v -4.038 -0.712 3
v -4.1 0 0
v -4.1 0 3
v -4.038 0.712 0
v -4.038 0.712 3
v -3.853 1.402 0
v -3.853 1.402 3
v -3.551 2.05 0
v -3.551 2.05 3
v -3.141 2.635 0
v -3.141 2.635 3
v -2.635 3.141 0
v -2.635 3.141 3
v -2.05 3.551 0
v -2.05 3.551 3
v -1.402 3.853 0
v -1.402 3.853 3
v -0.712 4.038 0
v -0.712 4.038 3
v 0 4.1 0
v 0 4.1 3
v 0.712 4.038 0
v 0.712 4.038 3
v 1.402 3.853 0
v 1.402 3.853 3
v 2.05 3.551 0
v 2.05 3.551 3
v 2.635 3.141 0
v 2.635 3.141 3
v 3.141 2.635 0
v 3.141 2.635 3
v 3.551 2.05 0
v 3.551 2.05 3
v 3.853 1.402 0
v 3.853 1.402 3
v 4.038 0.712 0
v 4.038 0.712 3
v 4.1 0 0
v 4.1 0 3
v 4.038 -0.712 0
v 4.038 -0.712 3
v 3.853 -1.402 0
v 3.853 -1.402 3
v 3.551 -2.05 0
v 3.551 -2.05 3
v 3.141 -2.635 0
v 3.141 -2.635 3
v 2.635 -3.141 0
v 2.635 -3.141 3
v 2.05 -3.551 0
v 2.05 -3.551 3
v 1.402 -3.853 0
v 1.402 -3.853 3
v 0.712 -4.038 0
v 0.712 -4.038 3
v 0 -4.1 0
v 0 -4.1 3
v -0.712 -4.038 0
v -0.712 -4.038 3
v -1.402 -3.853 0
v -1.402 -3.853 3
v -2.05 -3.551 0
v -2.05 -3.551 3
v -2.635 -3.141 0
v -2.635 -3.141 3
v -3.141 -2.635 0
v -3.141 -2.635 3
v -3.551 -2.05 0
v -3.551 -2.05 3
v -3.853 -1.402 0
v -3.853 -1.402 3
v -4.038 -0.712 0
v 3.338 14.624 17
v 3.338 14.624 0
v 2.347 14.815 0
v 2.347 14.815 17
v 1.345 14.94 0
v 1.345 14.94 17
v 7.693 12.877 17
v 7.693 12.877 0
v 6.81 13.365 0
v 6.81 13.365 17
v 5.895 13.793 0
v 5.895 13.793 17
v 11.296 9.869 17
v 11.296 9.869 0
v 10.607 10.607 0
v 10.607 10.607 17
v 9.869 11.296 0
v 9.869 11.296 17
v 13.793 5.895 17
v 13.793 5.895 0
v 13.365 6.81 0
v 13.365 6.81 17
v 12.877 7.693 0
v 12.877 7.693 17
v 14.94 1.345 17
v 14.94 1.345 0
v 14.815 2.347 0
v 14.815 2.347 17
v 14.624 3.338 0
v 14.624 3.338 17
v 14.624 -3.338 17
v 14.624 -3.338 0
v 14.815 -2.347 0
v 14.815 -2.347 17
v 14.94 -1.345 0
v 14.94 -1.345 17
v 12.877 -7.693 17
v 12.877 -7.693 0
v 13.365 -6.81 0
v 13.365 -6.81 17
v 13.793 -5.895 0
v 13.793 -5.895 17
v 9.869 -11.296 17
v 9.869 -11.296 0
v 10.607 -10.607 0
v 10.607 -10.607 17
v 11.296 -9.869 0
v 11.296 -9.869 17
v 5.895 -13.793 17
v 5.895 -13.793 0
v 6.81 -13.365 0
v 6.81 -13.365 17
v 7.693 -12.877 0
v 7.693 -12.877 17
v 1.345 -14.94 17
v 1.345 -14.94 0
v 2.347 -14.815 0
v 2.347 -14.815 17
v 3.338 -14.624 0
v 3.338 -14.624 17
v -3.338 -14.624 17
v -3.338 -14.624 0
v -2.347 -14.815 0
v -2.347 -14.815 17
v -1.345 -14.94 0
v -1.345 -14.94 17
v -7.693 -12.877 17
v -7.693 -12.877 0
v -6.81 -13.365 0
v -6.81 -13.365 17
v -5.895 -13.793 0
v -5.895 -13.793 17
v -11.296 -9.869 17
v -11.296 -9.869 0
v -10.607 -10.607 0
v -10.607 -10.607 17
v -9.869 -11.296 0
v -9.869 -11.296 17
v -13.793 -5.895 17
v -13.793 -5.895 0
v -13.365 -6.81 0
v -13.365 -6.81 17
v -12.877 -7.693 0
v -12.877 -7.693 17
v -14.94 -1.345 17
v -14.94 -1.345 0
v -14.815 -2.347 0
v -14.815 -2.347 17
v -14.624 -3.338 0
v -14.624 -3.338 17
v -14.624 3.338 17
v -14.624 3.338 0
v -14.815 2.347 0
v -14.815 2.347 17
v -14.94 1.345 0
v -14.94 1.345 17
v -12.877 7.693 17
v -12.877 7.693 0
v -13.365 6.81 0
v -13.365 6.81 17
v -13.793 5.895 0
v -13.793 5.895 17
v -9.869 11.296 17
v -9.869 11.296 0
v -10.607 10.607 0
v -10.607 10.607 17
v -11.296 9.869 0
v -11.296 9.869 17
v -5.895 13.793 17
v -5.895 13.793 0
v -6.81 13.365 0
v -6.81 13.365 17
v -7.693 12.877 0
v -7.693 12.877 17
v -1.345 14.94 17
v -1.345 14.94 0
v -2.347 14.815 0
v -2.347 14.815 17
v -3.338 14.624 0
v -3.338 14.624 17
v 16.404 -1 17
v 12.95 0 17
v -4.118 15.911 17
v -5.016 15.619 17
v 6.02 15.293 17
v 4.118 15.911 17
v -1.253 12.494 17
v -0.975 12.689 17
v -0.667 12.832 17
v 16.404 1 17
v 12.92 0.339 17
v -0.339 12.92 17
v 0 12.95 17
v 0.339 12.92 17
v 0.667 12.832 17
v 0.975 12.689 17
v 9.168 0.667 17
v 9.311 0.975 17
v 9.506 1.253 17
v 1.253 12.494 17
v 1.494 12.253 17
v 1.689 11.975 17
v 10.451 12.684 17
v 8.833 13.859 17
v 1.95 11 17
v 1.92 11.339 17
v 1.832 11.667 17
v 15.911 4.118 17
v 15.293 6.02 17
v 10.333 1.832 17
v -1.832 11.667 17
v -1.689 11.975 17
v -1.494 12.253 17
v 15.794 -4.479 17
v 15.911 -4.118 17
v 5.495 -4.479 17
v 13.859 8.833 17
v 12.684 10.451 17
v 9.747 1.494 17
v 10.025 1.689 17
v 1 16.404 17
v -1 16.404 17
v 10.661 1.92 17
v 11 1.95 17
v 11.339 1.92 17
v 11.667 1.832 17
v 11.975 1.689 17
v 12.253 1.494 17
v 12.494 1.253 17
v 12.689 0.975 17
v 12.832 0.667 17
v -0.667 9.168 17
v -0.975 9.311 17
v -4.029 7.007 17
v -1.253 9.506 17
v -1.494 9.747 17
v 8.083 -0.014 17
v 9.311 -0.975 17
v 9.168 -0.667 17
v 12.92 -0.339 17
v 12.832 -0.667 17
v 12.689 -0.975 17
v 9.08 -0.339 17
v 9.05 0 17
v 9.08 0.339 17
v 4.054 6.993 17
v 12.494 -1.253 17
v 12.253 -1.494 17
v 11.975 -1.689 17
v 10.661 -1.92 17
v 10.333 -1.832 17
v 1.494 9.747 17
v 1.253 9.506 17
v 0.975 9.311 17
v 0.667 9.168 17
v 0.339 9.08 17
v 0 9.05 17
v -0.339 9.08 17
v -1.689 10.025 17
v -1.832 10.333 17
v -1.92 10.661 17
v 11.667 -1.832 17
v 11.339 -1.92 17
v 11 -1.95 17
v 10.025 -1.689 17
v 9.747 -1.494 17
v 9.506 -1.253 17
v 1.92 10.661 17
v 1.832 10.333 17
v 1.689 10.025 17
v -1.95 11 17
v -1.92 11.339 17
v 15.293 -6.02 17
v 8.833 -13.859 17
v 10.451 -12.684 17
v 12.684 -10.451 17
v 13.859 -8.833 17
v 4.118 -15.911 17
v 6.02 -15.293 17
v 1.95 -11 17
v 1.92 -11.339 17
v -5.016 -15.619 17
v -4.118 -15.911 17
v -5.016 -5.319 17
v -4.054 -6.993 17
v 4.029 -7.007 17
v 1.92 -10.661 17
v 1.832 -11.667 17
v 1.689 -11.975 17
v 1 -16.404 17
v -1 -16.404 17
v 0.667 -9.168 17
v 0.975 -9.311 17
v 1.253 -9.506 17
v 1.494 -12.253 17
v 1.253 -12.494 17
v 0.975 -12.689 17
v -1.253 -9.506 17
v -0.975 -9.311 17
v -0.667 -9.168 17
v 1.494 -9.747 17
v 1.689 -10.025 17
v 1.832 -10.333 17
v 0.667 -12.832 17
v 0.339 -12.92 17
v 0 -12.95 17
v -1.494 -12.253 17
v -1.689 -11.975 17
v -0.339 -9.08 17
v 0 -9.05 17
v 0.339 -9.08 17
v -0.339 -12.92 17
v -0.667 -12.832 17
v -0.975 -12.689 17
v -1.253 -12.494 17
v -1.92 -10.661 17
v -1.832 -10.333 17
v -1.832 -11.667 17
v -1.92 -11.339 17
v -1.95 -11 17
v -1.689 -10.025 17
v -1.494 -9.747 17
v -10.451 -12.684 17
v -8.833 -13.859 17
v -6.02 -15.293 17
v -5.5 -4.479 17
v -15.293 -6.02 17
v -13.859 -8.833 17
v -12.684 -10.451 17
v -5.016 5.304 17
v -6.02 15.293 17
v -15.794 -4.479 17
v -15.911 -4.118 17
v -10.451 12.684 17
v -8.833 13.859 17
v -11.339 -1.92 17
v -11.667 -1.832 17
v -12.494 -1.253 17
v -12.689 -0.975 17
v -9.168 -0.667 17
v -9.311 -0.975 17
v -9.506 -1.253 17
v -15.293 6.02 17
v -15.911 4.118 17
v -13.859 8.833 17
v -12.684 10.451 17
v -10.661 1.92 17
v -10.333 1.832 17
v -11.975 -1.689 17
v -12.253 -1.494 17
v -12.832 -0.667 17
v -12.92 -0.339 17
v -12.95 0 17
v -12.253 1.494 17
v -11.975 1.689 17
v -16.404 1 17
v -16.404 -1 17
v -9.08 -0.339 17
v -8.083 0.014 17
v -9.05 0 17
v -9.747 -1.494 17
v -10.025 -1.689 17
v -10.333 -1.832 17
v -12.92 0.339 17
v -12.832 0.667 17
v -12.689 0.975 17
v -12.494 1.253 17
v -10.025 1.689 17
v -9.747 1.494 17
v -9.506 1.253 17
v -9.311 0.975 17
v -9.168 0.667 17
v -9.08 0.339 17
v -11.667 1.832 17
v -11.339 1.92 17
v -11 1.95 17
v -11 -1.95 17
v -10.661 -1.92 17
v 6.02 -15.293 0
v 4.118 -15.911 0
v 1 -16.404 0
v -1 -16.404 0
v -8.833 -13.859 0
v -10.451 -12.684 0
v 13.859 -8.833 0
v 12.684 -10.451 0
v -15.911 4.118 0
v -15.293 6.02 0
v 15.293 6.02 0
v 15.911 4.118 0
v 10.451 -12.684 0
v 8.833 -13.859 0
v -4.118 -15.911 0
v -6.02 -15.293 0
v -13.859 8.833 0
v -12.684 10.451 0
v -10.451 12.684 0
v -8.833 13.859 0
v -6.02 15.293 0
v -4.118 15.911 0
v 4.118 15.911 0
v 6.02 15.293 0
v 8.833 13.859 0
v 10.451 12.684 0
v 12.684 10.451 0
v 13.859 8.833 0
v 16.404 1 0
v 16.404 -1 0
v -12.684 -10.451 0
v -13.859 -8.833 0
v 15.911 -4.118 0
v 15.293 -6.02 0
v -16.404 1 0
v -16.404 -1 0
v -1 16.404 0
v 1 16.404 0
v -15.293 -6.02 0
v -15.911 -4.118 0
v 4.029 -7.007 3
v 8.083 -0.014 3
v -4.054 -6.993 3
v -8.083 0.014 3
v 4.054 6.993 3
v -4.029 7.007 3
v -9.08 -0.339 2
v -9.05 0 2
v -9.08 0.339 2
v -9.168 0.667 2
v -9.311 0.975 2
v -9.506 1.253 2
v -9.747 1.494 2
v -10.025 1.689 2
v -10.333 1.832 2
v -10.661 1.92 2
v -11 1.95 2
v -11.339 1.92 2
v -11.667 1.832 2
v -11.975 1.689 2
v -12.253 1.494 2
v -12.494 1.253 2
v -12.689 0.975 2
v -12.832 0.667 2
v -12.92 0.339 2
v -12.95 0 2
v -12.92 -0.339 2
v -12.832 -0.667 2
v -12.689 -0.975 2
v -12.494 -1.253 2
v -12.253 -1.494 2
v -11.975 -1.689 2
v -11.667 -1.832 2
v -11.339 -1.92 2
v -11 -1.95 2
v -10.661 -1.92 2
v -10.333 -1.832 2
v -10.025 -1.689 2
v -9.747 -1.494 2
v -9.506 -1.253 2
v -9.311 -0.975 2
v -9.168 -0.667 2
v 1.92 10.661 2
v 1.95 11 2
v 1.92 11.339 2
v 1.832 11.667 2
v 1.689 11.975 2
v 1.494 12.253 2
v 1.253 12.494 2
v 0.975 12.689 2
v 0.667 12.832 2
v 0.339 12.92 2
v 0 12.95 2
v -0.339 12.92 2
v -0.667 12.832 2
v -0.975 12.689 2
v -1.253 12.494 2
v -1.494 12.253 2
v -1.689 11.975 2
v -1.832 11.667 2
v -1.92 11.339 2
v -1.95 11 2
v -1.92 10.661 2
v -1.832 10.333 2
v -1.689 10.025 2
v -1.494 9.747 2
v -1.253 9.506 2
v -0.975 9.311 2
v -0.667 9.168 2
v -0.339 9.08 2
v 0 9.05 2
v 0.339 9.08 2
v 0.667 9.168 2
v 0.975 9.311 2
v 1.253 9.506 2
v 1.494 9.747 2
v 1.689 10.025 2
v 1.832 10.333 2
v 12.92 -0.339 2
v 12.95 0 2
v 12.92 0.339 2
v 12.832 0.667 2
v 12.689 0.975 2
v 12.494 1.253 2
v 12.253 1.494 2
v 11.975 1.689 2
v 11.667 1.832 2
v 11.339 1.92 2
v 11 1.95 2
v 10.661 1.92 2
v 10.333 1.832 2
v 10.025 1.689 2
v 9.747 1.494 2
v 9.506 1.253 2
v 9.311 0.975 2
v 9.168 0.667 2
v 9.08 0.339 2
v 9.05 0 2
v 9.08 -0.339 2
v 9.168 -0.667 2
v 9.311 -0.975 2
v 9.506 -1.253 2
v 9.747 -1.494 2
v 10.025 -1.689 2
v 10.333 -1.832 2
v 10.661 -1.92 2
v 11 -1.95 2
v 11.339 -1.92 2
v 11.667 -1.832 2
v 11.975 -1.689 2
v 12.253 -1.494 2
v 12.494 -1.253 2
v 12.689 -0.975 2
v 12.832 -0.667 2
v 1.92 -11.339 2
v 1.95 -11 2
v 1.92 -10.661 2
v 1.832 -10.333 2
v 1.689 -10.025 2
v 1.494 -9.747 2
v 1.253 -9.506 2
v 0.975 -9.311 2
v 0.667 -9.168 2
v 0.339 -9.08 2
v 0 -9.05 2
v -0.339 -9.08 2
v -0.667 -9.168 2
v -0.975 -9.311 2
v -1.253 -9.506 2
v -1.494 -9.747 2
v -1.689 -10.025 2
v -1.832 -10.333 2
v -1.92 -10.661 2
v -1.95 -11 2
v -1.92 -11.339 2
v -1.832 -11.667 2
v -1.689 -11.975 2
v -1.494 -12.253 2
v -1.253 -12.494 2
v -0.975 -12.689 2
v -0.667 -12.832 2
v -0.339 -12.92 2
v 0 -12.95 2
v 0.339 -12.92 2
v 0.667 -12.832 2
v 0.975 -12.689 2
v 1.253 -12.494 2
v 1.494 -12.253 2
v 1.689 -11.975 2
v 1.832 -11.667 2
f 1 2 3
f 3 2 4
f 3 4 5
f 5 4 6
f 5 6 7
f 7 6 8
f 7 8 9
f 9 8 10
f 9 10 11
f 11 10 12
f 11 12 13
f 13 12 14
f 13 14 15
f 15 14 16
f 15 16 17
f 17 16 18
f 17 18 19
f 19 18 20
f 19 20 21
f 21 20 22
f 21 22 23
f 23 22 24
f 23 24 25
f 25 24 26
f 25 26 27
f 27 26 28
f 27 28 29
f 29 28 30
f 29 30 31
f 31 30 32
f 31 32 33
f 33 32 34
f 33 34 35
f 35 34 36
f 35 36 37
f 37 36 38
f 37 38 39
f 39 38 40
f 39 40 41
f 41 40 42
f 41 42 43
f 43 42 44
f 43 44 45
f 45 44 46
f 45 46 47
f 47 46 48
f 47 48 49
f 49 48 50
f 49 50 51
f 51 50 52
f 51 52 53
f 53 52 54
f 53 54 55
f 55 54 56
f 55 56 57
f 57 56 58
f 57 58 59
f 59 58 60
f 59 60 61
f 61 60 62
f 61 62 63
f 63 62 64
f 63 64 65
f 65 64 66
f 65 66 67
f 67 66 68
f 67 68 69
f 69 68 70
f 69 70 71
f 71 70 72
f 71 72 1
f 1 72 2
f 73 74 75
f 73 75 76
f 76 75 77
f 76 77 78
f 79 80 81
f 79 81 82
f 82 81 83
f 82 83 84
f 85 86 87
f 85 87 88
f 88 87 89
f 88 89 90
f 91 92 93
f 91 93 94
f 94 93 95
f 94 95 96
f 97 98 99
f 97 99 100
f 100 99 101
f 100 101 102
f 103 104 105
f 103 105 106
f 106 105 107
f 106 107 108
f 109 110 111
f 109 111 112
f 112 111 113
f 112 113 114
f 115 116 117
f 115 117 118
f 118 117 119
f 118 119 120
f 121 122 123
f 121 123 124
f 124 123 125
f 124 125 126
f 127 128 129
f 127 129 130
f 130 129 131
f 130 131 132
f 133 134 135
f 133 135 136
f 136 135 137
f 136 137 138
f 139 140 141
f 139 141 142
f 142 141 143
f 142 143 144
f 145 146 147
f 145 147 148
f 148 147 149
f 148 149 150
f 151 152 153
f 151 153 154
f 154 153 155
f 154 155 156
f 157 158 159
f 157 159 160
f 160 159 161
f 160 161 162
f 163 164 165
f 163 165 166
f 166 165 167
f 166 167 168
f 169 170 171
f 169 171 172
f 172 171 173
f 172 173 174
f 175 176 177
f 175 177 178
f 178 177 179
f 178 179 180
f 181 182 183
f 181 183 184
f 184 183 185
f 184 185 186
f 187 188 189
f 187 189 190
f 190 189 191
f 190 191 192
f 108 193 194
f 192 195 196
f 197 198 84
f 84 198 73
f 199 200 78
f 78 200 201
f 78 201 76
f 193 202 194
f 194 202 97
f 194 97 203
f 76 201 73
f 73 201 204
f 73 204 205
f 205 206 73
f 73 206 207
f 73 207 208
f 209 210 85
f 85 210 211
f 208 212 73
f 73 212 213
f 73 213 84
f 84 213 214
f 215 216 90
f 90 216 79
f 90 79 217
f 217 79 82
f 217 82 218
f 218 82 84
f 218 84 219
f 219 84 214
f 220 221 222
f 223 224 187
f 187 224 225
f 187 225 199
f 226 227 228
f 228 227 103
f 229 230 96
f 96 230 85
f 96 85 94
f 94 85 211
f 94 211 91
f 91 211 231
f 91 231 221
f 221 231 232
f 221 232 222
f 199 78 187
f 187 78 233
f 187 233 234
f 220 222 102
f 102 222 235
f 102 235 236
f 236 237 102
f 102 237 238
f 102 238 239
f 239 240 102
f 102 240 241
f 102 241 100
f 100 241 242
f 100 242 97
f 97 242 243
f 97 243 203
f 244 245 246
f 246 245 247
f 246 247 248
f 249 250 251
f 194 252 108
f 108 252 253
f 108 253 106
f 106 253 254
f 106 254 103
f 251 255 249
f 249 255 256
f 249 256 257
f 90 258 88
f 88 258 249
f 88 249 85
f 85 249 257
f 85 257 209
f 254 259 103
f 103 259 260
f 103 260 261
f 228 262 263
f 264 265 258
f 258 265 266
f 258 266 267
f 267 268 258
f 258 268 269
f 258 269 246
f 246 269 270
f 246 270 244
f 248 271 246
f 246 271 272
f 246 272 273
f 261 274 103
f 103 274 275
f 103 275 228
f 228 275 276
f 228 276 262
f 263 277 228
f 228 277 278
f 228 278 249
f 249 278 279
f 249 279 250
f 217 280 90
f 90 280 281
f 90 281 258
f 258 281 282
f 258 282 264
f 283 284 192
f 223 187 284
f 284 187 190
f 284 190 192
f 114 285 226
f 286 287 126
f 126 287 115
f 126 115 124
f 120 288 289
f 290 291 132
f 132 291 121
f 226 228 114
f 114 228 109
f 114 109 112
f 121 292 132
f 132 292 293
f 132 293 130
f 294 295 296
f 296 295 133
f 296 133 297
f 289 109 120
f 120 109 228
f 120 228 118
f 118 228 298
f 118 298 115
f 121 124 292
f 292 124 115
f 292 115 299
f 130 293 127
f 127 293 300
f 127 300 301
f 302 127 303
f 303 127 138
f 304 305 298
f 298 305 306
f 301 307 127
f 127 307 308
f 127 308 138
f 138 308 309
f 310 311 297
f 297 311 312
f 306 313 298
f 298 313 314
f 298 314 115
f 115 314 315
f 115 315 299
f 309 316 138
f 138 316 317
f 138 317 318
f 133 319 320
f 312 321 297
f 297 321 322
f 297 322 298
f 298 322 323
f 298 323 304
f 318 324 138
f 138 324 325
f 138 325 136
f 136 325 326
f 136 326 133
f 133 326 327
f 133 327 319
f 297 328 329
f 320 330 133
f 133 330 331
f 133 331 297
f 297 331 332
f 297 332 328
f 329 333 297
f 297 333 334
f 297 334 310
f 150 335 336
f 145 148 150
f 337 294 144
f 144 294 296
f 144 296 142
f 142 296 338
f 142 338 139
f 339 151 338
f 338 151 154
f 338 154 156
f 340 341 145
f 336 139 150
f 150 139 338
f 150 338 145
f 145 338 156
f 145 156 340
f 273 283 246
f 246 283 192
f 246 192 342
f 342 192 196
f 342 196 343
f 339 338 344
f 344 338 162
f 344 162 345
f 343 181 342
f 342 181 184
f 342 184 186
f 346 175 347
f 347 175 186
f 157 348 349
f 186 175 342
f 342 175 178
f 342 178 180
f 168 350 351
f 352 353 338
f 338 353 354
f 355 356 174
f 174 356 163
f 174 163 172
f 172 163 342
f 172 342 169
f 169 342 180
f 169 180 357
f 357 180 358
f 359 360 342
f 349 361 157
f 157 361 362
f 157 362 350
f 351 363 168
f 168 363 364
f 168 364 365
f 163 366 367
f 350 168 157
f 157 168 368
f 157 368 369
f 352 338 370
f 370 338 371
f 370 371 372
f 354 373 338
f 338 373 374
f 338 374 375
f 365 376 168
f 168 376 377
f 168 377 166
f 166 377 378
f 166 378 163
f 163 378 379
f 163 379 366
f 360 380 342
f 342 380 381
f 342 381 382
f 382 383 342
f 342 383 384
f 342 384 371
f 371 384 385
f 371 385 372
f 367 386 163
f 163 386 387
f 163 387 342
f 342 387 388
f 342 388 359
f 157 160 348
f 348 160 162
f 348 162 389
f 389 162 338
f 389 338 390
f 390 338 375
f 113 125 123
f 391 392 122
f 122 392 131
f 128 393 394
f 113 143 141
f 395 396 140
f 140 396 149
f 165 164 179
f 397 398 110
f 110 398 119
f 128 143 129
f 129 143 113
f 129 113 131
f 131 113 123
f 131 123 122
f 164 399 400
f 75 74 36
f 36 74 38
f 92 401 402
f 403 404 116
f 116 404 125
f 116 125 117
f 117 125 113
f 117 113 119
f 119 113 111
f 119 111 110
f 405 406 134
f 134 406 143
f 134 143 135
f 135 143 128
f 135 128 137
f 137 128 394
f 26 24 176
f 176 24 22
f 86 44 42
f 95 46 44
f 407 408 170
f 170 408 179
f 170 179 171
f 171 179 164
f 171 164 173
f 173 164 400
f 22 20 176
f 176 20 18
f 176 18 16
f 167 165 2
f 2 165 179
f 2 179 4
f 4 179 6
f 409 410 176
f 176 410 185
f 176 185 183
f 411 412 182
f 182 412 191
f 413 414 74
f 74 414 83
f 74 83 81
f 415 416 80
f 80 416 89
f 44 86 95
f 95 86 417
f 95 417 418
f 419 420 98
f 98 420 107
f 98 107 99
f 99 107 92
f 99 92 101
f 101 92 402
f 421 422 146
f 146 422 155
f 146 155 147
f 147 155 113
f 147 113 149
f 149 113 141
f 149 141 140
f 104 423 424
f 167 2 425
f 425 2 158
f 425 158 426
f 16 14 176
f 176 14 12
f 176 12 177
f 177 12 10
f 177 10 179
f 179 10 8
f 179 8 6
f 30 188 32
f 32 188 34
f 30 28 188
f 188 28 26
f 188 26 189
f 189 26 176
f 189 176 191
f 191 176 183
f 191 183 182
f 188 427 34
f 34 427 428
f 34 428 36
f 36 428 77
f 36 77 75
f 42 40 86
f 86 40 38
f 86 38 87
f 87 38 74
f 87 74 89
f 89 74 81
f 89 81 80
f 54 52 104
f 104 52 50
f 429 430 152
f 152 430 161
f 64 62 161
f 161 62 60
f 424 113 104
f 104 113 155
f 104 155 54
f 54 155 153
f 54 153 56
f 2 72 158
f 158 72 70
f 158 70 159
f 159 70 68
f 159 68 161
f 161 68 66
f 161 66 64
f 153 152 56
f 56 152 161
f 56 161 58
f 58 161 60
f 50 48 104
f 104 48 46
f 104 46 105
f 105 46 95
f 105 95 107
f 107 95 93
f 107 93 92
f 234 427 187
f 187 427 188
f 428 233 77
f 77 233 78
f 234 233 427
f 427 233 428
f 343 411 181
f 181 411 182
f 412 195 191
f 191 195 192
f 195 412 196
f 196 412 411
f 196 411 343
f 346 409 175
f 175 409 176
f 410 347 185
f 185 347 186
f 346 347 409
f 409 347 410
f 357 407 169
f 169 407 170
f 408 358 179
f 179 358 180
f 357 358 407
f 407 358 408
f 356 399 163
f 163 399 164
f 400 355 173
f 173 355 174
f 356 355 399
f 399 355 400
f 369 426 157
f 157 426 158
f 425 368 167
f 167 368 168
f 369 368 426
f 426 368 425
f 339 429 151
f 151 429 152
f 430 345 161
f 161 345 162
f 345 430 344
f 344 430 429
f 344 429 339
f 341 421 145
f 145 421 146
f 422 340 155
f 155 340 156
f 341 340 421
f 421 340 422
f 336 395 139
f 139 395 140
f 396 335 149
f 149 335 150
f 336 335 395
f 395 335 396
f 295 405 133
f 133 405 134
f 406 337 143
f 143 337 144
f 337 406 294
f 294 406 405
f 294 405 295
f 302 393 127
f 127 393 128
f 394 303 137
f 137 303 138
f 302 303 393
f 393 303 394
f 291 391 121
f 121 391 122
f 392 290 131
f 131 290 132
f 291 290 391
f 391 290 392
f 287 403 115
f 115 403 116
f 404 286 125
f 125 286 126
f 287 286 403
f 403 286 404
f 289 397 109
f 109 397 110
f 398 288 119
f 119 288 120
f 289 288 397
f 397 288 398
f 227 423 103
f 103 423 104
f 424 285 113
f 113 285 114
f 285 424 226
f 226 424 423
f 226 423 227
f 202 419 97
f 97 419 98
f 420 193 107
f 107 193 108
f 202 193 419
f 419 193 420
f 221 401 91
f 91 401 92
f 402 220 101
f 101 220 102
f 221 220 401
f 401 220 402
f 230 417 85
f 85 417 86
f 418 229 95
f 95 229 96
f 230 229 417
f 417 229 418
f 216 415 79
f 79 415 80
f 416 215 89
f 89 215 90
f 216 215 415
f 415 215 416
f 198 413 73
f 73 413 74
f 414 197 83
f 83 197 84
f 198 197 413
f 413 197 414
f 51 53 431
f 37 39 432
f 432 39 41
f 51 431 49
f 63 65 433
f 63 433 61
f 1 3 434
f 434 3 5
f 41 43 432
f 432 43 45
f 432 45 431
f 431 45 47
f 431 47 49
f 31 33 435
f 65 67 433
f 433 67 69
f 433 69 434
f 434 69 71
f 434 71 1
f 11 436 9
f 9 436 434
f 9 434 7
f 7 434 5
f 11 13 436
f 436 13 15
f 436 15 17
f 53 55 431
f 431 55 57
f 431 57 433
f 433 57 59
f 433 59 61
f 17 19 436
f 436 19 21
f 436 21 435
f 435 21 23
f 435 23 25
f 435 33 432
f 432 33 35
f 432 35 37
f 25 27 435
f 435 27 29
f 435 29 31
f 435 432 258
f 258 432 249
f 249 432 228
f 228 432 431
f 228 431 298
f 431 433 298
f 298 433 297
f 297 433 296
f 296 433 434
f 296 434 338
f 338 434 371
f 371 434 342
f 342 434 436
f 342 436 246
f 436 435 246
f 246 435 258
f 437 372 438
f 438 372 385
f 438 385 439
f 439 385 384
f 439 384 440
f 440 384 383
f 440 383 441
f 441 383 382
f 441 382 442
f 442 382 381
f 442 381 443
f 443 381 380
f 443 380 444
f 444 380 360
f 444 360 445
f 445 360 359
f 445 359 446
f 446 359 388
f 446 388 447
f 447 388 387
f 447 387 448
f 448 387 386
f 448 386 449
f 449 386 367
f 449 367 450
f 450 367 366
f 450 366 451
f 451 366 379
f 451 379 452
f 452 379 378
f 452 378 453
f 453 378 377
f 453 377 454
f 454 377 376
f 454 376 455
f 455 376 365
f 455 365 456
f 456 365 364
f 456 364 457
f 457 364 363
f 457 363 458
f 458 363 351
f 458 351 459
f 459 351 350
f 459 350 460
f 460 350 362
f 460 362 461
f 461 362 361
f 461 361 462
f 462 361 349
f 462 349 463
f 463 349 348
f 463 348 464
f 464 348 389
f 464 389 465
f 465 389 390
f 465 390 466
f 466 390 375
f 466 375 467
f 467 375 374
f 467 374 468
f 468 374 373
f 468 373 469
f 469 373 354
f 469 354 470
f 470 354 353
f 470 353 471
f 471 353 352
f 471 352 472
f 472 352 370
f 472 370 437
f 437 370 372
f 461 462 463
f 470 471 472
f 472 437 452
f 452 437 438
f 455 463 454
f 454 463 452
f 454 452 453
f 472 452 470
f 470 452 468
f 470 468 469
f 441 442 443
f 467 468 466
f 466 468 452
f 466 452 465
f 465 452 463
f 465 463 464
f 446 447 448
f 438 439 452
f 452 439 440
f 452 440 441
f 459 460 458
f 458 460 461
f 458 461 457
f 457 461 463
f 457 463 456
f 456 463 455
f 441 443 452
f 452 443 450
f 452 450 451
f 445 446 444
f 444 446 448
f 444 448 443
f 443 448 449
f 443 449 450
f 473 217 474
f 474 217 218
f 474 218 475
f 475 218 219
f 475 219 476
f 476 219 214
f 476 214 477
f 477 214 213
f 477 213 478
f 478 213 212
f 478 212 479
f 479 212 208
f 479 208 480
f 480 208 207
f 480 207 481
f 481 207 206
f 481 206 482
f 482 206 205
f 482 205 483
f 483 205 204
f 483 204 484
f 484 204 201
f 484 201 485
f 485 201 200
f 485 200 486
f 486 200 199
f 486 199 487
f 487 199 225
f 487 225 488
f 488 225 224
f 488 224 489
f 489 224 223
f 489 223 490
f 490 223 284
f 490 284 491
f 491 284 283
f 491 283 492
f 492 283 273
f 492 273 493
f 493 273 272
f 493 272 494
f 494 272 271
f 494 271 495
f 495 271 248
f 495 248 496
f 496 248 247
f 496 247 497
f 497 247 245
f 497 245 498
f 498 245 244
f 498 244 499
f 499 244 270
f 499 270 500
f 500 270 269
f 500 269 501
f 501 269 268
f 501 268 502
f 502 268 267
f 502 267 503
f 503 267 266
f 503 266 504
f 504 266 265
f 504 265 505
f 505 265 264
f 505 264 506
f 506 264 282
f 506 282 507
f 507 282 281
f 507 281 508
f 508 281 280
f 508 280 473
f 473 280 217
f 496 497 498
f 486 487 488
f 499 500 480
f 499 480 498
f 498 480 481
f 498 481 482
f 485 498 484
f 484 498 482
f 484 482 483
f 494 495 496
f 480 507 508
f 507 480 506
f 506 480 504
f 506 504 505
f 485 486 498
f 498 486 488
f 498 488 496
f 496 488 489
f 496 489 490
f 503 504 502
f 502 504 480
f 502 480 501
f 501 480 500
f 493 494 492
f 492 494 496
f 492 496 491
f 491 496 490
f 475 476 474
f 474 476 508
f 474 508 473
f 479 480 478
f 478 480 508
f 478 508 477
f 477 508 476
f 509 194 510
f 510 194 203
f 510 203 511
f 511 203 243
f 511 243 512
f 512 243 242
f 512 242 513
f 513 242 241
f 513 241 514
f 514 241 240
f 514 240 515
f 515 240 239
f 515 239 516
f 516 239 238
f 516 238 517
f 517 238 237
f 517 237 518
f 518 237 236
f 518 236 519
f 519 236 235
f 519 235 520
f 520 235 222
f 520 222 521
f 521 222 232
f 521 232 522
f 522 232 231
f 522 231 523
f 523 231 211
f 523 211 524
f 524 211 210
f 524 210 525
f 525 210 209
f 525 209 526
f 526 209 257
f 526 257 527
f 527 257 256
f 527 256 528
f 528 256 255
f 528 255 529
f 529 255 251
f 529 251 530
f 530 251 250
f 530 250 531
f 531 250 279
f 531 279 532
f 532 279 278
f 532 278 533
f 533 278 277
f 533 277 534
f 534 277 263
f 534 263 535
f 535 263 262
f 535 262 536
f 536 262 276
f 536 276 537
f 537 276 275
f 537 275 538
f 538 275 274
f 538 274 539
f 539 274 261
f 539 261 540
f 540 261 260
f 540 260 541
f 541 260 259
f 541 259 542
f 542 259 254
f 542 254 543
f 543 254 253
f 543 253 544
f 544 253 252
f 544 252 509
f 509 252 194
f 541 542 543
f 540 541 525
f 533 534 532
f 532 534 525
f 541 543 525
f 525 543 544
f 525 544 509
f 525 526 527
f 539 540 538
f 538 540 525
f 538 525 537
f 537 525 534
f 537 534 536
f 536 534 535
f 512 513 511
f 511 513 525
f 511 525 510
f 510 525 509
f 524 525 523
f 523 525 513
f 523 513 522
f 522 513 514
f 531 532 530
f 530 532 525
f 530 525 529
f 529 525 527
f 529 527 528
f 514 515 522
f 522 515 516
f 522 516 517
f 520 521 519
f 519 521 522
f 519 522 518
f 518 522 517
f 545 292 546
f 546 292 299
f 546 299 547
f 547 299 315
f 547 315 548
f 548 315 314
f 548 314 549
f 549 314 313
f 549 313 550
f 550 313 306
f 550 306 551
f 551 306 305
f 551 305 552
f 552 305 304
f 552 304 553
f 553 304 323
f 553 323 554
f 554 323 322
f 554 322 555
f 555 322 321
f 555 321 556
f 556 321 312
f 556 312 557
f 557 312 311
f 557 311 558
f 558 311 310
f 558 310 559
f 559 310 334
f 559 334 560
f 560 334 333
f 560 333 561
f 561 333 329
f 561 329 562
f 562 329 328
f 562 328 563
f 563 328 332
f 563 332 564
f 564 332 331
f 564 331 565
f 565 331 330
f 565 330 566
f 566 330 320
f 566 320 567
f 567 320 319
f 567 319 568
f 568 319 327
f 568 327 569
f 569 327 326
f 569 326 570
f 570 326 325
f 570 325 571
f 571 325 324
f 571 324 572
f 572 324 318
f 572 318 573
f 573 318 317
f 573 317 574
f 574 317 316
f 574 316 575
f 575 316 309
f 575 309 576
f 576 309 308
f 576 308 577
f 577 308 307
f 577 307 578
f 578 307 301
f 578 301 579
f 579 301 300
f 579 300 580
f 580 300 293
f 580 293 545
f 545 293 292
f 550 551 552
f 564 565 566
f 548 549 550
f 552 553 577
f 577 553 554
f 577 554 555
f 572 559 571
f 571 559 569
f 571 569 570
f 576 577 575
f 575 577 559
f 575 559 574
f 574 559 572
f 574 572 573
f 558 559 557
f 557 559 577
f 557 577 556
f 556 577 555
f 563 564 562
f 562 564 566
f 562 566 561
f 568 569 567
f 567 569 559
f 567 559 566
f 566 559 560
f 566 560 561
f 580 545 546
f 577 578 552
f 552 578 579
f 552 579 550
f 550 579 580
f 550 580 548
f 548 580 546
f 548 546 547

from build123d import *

# Parameters (mm, degrees)
SKETCH1_R                      = 15
EXTRUDE1_DEPTH                 = 17
EXTRUDE3_DEPTH                 = 17
CIRPATTERN1_COUNT              = 20
F_8_2_8_2_DIAMETER_HOLE1_D     = 8.2
F_8_2_8_2_DIAMETER_HOLE1_DEPTH = 10
F_8_2_8_2_DIAMETER_HOLE1_TIP   = 2.463528538
EXTRUDE5_DEPTH                 = 14
SKETCH7_R                      = 1.95
EXTRUDE6_DEPTH                 = 15


with BuildPart() as part:
    # Sketch1 → Extrude1 (new body)
    with BuildSketch(Plane.XY):
        Circle(SKETCH1_R)
    extrude(amount=EXTRUDE1_DEPTH)

    # Sketch2 → Extrude3 (add)
    with BuildSketch(Plane.XY.offset(17)):
        Polygon((1.4, 14.704480908), (1, 16.404480908), (-1, 16.404480908), (-1.4, 14.704480908), align=None)
    extrude3 = extrude(amount=-EXTRUDE3_DEPTH)

    # CirPattern1: Extrude3 ×20 about axis
    cirpattern1_axis = Axis((0, 0, 0), (0, 0, 1))
    for i in range(1, CIRPATTERN1_COUNT):
        add(extrude3.rotate(cirpattern1_axis, i * 360 / CIRPATTERN1_COUNT))

    # Ø8.2 (8.2) Diameter Hole1
    with Locations(Plane(origin=(0, 0, 0), x_dir=(-1, 0, 0), z_dir=(0, 0, -1))):
        with Locations((0, 0)):
            Hole(F_8_2_8_2_DIAMETER_HOLE1_D / 2, depth=F_8_2_8_2_DIAMETER_HOLE1_DEPTH)
            with Locations((0, 0, -(F_8_2_8_2_DIAMETER_HOLE1_DEPTH + F_8_2_8_2_DIAMETER_HOLE1_TIP / 2))):  # 118° drill point
                Cone(0, F_8_2_8_2_DIAMETER_HOLE1_D / 2, F_8_2_8_2_DIAMETER_HOLE1_TIP, mode=Mode.SUBTRACT)

    # Sketch6 → Extrude5 (cut)
    with BuildSketch(Plane.XY.offset(17)):
        Polygon((4.053764157, 6.992877054), (-4.029127096, 7.007101268), (-8.082891253, 0.014224214), (-4.053764157, -6.992877054), (4.029127096, -7.007101268), (8.082891253, -0.014224214), align=None)
    extrude(amount=-EXTRUDE5_DEPTH, mode=Mode.SUBTRACT)

    # Sketch7 → Extrude6 (cut)
    with BuildSketch(Plane.XY.offset(17)):
        with Locations((-11, 0)):
            Circle(SKETCH7_R)
        with Locations((0, 11)):
            Circle(SKETCH7_R)
        with Locations((11, 0)):
            Circle(SKETCH7_R)
        with Locations((0, -11)):
            Circle(SKETCH7_R)
    extrude(amount=-EXTRUDE6_DEPTH, mode=Mode.SUBTRACT)


solid = part.part
